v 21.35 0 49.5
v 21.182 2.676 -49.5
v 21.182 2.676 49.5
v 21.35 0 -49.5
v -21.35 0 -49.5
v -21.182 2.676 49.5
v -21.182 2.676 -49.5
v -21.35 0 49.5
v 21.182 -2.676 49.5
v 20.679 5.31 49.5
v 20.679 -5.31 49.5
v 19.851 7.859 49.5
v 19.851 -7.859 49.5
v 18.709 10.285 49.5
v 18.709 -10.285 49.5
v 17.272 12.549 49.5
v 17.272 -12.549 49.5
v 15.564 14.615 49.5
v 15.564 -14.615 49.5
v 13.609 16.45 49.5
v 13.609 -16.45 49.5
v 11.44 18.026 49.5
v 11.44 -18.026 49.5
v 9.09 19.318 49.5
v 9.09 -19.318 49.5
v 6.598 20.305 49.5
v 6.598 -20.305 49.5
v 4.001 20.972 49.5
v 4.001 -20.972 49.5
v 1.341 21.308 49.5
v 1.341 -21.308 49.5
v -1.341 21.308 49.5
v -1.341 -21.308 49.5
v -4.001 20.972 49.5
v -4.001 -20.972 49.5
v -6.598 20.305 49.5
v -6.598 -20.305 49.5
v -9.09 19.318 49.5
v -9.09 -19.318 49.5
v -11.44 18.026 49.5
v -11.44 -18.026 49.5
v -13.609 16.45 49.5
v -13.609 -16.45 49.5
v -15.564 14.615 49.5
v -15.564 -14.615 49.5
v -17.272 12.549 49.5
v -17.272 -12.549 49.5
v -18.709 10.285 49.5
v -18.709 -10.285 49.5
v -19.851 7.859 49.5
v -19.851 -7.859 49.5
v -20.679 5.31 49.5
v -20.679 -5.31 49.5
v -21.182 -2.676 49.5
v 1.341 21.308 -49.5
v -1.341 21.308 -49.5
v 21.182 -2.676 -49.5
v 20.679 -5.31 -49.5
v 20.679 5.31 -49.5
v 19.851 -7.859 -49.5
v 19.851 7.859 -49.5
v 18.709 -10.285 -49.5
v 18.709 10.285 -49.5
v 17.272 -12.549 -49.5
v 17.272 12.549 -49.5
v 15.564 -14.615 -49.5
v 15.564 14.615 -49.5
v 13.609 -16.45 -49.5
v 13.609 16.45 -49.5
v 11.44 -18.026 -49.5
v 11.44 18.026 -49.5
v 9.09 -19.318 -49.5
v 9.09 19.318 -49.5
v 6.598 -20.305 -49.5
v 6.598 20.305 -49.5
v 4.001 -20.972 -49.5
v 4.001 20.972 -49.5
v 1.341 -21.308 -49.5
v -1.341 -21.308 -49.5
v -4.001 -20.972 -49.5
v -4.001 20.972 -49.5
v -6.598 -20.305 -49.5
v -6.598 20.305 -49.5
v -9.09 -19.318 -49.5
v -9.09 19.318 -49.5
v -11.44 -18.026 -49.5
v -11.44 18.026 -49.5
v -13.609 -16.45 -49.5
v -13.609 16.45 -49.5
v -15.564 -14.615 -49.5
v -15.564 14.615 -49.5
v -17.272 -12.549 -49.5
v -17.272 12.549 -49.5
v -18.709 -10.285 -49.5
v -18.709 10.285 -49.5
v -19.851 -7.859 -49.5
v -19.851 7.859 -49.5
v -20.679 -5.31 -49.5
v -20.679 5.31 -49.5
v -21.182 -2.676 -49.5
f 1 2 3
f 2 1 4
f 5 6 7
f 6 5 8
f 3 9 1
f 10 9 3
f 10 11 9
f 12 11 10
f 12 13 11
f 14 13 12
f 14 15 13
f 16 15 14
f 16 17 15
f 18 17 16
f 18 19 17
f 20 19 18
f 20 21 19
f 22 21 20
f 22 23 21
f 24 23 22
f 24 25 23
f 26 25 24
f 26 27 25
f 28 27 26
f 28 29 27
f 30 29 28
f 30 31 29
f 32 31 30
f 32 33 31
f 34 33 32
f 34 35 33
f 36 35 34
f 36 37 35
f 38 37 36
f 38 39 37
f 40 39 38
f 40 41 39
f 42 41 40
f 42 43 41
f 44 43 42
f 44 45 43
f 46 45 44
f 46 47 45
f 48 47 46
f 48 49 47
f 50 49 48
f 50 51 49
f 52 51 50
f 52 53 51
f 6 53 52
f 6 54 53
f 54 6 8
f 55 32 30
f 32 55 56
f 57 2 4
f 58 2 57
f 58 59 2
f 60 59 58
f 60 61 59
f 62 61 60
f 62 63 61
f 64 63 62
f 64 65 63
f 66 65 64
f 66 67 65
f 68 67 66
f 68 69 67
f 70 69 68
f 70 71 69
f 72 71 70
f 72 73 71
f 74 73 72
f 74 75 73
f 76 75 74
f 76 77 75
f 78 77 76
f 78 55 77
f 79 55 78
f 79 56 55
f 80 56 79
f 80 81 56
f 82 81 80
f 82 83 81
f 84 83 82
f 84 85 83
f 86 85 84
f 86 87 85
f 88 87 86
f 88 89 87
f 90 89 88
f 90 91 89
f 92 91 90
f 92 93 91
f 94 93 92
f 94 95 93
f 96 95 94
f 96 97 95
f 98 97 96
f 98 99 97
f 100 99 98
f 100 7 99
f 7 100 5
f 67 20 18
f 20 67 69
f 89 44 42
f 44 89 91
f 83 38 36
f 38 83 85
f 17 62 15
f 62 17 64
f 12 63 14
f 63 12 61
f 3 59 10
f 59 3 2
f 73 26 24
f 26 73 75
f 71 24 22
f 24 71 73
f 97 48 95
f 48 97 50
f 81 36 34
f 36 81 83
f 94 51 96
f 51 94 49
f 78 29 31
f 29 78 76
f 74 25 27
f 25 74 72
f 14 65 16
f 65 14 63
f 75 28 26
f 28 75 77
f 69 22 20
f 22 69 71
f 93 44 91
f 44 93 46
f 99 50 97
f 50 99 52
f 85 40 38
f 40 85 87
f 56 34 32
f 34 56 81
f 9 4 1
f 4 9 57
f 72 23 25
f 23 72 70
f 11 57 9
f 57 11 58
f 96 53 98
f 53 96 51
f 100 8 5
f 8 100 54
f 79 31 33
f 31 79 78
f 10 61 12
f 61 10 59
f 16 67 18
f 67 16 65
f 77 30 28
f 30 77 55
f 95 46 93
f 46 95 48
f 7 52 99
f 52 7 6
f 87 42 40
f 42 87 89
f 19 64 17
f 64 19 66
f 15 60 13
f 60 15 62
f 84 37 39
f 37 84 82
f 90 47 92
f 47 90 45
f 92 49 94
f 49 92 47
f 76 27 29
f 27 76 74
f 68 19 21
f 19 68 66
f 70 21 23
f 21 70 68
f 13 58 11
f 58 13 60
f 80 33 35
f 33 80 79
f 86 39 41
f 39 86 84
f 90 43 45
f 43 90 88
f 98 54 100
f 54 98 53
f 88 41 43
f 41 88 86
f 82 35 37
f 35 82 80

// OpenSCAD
$fn = 50;


difference() {
	union() {
		translate(v = [0, 0, -49.5000000000]) {
			cylinder(h = 99, r = 21.3500000000);
		}
	}
	union() {
		translate(v = [0, 0, -100.0000000000]) {
			cylinder(h = 200, r = 0);
		}
	}
}
